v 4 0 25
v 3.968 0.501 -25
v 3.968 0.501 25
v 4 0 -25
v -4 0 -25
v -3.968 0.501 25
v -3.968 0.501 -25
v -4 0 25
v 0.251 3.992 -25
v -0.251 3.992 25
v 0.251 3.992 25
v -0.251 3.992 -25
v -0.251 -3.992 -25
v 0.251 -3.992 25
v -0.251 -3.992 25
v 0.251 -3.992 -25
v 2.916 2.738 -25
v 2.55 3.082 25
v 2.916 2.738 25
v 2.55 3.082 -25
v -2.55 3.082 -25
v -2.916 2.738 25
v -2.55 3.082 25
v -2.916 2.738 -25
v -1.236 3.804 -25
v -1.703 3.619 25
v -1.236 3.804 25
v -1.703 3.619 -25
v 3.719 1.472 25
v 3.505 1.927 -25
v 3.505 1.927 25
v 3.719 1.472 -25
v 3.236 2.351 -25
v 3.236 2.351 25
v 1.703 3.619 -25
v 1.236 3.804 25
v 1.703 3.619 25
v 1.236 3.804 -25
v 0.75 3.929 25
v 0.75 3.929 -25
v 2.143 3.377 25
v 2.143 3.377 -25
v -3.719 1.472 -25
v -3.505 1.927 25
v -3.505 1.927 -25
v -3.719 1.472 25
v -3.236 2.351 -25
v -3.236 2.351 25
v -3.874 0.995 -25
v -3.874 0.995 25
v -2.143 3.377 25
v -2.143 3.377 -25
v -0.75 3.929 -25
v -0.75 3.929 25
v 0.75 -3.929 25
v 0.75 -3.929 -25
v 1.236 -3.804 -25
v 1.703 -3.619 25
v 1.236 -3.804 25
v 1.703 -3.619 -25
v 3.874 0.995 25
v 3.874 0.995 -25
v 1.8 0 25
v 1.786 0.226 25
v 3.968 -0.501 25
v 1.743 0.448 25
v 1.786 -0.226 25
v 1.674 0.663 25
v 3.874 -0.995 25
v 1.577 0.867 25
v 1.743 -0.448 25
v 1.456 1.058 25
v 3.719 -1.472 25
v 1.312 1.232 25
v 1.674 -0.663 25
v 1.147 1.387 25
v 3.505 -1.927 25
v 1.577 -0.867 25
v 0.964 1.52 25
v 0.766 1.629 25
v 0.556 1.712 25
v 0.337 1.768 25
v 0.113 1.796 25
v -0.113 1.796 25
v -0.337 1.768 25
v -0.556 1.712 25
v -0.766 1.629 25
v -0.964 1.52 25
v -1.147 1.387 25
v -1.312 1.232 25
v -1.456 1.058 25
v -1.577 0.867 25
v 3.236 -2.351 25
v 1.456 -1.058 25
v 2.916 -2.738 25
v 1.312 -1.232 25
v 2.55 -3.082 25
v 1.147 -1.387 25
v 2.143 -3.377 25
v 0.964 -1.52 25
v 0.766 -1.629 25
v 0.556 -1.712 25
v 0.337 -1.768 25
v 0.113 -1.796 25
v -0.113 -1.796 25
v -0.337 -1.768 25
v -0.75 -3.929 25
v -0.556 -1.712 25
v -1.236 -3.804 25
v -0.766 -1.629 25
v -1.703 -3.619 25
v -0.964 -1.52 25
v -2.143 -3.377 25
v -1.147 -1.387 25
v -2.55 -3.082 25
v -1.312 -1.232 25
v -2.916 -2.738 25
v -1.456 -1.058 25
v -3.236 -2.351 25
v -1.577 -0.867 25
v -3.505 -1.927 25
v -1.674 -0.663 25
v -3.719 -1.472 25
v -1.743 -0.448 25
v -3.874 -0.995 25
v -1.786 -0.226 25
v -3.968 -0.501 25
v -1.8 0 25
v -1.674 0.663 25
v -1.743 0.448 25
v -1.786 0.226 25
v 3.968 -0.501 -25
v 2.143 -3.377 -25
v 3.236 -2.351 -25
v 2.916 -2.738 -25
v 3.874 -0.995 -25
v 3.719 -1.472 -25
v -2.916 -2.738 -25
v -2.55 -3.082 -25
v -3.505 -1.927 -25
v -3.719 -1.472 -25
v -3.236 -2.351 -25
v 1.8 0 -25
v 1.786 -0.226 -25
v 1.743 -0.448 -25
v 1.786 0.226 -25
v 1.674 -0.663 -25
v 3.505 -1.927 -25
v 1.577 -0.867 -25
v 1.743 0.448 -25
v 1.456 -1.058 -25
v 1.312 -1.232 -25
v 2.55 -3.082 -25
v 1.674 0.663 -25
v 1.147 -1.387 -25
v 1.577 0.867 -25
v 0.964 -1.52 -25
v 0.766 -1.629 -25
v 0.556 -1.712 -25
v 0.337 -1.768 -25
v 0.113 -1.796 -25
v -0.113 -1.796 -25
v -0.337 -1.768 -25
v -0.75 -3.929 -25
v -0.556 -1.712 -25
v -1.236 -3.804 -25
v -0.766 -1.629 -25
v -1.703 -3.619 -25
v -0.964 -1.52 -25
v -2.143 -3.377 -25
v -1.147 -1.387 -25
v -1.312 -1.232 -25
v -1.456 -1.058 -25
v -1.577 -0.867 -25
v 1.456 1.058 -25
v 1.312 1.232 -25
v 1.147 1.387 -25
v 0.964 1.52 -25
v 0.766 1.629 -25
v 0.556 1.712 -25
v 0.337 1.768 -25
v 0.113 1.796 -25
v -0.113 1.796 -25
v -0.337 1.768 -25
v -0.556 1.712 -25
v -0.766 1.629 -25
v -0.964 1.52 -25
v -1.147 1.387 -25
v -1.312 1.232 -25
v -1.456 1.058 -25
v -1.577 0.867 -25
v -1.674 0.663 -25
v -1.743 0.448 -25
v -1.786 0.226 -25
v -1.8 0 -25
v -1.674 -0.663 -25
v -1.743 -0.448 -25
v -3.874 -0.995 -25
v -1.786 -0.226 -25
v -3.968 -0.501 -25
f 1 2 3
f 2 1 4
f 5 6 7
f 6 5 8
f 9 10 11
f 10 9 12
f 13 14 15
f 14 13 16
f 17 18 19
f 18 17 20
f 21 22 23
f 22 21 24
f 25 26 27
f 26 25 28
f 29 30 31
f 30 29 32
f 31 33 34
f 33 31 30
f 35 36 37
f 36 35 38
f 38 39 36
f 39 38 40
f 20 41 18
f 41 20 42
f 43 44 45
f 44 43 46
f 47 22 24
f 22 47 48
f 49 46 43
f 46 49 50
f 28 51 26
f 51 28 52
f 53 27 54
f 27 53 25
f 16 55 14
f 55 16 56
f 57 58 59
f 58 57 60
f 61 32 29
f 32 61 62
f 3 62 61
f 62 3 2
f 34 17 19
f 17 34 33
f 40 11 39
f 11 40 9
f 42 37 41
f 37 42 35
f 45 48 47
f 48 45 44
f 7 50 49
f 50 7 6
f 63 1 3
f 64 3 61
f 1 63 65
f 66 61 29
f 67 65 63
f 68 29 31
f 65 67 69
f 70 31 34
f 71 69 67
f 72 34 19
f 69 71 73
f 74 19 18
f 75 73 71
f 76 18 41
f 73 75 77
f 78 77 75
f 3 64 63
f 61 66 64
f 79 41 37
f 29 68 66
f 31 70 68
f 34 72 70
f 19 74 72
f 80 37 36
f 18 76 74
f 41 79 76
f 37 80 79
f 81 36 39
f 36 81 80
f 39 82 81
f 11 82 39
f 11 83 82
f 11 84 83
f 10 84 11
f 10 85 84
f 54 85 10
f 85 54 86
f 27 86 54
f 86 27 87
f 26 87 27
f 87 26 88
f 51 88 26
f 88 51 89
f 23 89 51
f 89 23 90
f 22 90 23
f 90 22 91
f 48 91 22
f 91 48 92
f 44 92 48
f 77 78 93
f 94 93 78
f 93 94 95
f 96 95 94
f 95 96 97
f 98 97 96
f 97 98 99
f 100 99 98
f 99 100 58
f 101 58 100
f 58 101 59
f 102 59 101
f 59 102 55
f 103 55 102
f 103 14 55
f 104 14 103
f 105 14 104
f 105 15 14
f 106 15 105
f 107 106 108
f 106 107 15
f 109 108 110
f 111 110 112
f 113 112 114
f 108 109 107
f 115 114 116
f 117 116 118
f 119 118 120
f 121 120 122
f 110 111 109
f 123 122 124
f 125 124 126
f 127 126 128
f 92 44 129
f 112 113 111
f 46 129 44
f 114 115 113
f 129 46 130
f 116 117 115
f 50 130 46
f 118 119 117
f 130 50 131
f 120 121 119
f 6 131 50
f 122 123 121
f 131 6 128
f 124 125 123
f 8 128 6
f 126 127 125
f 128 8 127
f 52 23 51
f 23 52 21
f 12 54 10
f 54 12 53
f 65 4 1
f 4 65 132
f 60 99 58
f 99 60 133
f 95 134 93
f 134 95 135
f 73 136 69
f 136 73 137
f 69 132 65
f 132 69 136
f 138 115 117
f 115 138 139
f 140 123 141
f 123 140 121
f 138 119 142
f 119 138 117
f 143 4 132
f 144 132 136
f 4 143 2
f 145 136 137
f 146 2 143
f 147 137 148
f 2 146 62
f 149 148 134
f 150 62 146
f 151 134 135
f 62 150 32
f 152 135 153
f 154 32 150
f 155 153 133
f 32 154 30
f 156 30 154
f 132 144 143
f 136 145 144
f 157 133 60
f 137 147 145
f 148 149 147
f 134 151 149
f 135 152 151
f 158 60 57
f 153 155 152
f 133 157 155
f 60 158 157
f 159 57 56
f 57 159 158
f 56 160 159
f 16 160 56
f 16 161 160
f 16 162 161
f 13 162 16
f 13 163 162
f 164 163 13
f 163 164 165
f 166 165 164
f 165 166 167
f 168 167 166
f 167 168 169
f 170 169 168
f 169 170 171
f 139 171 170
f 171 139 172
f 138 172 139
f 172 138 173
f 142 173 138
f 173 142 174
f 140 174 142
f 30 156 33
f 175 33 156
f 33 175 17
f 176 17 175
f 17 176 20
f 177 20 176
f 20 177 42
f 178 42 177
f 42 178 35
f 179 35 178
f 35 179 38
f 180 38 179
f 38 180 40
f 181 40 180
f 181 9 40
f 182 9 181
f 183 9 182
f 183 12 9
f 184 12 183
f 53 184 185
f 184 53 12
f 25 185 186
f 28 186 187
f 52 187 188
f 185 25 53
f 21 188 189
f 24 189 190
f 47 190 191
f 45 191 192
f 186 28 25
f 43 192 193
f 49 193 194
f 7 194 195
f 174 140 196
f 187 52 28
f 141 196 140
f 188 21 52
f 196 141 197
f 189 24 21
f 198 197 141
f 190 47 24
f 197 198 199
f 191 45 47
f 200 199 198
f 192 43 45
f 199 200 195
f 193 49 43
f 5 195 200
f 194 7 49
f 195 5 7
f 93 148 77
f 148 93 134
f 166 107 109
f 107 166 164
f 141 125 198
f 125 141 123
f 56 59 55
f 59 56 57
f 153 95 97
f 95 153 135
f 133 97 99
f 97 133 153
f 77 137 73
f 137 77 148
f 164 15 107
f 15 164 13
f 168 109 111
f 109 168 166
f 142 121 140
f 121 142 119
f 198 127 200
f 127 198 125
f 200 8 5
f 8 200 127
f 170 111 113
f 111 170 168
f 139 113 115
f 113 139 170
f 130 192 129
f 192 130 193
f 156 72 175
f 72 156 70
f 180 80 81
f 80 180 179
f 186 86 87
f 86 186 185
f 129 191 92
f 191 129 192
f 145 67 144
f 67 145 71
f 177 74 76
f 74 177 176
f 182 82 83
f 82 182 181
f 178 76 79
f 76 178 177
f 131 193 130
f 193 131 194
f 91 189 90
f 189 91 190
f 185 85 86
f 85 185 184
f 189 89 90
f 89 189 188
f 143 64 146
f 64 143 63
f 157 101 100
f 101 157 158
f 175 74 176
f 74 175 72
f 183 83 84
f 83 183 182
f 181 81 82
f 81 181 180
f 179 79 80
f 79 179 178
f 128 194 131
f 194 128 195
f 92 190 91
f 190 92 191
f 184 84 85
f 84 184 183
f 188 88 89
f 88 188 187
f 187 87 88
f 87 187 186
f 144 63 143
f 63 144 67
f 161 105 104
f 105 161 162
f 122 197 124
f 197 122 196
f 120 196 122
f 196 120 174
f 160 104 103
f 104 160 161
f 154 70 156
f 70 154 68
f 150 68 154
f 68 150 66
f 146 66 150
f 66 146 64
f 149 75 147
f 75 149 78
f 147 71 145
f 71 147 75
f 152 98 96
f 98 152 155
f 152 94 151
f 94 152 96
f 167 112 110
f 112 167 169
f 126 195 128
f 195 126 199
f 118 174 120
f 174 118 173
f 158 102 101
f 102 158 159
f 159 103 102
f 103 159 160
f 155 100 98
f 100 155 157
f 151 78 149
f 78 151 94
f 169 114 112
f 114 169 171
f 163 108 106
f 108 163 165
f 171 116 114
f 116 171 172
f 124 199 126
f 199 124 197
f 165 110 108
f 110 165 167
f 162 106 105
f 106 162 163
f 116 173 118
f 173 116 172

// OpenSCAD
$fn = 50;


difference() {
	union() {
		translate(v = [0, 0, -25.0000000000]) {
			cylinder(h = 50, r = 4.0000000000);
		}
	}
	union() {
		translate(v = [0, 0, -100.0000000000]) {
			cylinder(h = 200, r = 1.8000000000);
		}
	}
}
